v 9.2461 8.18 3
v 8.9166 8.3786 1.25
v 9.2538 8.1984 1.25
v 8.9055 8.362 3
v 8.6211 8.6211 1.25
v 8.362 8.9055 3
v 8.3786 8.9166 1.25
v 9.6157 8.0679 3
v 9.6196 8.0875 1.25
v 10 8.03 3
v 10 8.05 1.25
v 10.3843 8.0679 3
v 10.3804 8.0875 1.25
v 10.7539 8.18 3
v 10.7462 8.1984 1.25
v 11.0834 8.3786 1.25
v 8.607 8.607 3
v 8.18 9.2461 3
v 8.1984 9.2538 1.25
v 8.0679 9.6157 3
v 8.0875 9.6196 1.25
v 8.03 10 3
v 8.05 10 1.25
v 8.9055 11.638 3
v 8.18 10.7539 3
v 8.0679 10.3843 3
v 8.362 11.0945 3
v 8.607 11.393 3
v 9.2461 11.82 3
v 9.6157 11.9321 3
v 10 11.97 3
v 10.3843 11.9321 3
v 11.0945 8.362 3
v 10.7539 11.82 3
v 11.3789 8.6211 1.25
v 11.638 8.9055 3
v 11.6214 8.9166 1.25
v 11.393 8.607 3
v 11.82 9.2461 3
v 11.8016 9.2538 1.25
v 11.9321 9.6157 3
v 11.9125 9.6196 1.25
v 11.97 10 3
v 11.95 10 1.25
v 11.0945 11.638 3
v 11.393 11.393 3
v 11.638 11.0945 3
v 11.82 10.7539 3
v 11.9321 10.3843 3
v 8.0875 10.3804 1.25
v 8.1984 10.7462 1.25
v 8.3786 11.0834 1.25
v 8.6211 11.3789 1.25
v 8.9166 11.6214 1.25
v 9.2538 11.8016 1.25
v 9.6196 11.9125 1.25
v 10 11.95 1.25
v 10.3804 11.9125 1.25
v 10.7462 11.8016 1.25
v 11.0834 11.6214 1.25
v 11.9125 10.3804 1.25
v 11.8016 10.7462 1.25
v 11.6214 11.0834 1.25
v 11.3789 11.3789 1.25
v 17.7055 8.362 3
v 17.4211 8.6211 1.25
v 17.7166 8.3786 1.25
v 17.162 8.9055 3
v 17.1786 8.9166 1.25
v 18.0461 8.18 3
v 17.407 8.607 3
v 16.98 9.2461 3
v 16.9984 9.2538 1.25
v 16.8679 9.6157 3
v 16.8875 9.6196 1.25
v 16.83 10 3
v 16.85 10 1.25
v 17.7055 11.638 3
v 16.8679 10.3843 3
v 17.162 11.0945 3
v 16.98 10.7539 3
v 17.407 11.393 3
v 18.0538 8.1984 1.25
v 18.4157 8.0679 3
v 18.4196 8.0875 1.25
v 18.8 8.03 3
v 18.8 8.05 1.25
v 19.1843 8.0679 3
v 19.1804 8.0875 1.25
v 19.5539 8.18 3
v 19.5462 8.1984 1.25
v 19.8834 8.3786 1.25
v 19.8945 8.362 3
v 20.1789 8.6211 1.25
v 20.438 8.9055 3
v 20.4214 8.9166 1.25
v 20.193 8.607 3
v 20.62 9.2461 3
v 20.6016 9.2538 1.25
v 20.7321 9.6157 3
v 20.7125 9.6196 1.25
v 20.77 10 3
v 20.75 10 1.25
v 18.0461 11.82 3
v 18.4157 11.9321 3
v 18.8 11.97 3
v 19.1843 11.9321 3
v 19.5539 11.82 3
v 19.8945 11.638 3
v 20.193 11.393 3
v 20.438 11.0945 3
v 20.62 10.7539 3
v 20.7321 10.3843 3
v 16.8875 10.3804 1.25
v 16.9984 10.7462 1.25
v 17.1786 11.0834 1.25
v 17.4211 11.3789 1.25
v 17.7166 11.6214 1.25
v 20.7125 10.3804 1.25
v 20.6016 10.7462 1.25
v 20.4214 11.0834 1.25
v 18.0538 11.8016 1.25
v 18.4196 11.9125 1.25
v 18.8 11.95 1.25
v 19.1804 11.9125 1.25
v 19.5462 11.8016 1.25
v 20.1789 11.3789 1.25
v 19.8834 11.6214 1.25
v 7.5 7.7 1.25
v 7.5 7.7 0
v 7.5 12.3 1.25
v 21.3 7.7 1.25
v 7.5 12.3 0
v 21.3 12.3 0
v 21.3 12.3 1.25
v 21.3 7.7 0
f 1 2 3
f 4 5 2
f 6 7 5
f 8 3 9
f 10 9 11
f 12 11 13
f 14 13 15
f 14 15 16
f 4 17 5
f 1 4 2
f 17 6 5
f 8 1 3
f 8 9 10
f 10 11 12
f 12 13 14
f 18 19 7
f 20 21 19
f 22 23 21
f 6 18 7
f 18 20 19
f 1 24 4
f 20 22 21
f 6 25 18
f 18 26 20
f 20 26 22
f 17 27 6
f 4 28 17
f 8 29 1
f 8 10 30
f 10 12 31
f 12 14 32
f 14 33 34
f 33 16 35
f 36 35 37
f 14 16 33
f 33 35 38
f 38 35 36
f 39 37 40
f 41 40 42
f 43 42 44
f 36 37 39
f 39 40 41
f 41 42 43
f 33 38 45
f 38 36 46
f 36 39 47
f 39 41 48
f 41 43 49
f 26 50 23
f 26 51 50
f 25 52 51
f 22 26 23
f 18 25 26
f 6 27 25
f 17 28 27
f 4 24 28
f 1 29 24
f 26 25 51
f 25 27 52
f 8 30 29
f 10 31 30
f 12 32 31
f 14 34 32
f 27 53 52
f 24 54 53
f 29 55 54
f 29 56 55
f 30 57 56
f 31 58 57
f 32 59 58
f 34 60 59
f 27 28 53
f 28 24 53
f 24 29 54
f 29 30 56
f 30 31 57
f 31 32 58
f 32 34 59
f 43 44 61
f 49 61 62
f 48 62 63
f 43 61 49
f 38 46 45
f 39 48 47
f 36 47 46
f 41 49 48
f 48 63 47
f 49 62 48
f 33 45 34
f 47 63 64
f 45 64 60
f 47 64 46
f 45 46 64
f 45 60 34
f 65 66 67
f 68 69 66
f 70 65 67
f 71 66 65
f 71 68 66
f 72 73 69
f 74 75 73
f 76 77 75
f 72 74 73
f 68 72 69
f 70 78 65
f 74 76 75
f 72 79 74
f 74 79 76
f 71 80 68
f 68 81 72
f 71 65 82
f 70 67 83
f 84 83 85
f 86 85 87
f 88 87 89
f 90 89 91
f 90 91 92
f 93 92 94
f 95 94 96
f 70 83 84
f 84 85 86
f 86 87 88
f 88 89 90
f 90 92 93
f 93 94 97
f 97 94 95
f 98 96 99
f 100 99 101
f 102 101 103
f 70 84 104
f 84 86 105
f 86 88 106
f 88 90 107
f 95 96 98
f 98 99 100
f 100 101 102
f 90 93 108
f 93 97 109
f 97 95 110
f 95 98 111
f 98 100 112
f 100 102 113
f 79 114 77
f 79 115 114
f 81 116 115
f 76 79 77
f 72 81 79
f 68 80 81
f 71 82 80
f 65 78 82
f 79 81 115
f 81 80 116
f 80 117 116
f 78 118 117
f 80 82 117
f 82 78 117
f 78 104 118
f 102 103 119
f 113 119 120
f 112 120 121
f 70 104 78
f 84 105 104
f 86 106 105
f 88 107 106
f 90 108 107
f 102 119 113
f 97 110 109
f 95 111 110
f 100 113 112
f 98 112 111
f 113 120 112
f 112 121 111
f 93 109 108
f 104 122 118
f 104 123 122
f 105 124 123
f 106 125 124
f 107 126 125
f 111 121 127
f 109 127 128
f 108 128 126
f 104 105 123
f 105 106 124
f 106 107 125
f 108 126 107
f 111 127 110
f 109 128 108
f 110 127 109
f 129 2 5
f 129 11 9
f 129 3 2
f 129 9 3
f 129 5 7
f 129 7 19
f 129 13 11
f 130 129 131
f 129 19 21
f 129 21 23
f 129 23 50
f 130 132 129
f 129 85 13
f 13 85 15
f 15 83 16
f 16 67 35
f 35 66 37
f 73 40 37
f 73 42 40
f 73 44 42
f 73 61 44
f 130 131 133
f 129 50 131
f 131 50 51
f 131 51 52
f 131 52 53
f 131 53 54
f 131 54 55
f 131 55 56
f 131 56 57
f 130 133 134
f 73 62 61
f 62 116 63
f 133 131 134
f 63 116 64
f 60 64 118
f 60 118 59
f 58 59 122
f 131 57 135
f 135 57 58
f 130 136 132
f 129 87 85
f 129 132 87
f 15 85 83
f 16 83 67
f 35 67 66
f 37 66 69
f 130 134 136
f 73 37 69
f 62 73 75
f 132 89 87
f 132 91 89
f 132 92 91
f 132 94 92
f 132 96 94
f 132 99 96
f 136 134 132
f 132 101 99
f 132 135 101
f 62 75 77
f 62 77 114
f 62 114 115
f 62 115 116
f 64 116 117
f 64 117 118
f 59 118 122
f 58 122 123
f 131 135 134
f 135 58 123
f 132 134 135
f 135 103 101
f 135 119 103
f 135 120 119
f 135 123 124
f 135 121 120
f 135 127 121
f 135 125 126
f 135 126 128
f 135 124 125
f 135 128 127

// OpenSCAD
// Dholydai: 28 Mar 2025

$fn=32;

//Reset and Run Covers
translate([0,0,1.25])
rotate([0,0,0]){
     #translate([10,10,0])
         cylinder(r1=1.95,r2=1.97,h=1.75);
     }

translate([0,0,1.25])     
rotate([0,0,0]){
     #translate([18.8,10,0])
         cylinder(r1=1.95,r2=1.97,h=1.75);
     }
translate([7.5,7.7,0])
cube([13.8,4.6,1.25]);
